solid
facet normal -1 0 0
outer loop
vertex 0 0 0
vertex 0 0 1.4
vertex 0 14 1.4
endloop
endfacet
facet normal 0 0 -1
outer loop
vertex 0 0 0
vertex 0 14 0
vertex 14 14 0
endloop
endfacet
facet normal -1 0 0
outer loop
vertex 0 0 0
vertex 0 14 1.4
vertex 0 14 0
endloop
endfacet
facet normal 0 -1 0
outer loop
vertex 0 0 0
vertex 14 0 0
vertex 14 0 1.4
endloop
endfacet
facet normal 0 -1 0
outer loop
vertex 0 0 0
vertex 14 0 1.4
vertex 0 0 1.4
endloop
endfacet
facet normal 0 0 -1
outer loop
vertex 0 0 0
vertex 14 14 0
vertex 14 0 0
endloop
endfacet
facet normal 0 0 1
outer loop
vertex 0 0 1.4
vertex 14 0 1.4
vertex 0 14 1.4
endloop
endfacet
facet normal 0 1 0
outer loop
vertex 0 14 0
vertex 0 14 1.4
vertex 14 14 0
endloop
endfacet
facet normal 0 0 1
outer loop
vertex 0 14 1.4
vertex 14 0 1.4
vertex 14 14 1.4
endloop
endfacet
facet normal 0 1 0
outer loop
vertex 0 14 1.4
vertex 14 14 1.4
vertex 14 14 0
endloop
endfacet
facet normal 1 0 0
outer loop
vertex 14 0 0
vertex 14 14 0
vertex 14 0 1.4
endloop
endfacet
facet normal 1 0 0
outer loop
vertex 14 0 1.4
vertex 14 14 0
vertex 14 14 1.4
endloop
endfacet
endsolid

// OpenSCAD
/* Warning, this is a very basic generator with a lot of approximation 
input data : [LQFP, K8C, 14x14x1.4mm, 100, , A, C04-25356A]
generated by com.zoubworld.electronics.cad.model3d.Basic
Date : Sun Feb 15 10:50:49 CET 2026
*/

//body
color("black")
translate([0,0,0])
cube([14.0,14.0,1.4], center=false);
